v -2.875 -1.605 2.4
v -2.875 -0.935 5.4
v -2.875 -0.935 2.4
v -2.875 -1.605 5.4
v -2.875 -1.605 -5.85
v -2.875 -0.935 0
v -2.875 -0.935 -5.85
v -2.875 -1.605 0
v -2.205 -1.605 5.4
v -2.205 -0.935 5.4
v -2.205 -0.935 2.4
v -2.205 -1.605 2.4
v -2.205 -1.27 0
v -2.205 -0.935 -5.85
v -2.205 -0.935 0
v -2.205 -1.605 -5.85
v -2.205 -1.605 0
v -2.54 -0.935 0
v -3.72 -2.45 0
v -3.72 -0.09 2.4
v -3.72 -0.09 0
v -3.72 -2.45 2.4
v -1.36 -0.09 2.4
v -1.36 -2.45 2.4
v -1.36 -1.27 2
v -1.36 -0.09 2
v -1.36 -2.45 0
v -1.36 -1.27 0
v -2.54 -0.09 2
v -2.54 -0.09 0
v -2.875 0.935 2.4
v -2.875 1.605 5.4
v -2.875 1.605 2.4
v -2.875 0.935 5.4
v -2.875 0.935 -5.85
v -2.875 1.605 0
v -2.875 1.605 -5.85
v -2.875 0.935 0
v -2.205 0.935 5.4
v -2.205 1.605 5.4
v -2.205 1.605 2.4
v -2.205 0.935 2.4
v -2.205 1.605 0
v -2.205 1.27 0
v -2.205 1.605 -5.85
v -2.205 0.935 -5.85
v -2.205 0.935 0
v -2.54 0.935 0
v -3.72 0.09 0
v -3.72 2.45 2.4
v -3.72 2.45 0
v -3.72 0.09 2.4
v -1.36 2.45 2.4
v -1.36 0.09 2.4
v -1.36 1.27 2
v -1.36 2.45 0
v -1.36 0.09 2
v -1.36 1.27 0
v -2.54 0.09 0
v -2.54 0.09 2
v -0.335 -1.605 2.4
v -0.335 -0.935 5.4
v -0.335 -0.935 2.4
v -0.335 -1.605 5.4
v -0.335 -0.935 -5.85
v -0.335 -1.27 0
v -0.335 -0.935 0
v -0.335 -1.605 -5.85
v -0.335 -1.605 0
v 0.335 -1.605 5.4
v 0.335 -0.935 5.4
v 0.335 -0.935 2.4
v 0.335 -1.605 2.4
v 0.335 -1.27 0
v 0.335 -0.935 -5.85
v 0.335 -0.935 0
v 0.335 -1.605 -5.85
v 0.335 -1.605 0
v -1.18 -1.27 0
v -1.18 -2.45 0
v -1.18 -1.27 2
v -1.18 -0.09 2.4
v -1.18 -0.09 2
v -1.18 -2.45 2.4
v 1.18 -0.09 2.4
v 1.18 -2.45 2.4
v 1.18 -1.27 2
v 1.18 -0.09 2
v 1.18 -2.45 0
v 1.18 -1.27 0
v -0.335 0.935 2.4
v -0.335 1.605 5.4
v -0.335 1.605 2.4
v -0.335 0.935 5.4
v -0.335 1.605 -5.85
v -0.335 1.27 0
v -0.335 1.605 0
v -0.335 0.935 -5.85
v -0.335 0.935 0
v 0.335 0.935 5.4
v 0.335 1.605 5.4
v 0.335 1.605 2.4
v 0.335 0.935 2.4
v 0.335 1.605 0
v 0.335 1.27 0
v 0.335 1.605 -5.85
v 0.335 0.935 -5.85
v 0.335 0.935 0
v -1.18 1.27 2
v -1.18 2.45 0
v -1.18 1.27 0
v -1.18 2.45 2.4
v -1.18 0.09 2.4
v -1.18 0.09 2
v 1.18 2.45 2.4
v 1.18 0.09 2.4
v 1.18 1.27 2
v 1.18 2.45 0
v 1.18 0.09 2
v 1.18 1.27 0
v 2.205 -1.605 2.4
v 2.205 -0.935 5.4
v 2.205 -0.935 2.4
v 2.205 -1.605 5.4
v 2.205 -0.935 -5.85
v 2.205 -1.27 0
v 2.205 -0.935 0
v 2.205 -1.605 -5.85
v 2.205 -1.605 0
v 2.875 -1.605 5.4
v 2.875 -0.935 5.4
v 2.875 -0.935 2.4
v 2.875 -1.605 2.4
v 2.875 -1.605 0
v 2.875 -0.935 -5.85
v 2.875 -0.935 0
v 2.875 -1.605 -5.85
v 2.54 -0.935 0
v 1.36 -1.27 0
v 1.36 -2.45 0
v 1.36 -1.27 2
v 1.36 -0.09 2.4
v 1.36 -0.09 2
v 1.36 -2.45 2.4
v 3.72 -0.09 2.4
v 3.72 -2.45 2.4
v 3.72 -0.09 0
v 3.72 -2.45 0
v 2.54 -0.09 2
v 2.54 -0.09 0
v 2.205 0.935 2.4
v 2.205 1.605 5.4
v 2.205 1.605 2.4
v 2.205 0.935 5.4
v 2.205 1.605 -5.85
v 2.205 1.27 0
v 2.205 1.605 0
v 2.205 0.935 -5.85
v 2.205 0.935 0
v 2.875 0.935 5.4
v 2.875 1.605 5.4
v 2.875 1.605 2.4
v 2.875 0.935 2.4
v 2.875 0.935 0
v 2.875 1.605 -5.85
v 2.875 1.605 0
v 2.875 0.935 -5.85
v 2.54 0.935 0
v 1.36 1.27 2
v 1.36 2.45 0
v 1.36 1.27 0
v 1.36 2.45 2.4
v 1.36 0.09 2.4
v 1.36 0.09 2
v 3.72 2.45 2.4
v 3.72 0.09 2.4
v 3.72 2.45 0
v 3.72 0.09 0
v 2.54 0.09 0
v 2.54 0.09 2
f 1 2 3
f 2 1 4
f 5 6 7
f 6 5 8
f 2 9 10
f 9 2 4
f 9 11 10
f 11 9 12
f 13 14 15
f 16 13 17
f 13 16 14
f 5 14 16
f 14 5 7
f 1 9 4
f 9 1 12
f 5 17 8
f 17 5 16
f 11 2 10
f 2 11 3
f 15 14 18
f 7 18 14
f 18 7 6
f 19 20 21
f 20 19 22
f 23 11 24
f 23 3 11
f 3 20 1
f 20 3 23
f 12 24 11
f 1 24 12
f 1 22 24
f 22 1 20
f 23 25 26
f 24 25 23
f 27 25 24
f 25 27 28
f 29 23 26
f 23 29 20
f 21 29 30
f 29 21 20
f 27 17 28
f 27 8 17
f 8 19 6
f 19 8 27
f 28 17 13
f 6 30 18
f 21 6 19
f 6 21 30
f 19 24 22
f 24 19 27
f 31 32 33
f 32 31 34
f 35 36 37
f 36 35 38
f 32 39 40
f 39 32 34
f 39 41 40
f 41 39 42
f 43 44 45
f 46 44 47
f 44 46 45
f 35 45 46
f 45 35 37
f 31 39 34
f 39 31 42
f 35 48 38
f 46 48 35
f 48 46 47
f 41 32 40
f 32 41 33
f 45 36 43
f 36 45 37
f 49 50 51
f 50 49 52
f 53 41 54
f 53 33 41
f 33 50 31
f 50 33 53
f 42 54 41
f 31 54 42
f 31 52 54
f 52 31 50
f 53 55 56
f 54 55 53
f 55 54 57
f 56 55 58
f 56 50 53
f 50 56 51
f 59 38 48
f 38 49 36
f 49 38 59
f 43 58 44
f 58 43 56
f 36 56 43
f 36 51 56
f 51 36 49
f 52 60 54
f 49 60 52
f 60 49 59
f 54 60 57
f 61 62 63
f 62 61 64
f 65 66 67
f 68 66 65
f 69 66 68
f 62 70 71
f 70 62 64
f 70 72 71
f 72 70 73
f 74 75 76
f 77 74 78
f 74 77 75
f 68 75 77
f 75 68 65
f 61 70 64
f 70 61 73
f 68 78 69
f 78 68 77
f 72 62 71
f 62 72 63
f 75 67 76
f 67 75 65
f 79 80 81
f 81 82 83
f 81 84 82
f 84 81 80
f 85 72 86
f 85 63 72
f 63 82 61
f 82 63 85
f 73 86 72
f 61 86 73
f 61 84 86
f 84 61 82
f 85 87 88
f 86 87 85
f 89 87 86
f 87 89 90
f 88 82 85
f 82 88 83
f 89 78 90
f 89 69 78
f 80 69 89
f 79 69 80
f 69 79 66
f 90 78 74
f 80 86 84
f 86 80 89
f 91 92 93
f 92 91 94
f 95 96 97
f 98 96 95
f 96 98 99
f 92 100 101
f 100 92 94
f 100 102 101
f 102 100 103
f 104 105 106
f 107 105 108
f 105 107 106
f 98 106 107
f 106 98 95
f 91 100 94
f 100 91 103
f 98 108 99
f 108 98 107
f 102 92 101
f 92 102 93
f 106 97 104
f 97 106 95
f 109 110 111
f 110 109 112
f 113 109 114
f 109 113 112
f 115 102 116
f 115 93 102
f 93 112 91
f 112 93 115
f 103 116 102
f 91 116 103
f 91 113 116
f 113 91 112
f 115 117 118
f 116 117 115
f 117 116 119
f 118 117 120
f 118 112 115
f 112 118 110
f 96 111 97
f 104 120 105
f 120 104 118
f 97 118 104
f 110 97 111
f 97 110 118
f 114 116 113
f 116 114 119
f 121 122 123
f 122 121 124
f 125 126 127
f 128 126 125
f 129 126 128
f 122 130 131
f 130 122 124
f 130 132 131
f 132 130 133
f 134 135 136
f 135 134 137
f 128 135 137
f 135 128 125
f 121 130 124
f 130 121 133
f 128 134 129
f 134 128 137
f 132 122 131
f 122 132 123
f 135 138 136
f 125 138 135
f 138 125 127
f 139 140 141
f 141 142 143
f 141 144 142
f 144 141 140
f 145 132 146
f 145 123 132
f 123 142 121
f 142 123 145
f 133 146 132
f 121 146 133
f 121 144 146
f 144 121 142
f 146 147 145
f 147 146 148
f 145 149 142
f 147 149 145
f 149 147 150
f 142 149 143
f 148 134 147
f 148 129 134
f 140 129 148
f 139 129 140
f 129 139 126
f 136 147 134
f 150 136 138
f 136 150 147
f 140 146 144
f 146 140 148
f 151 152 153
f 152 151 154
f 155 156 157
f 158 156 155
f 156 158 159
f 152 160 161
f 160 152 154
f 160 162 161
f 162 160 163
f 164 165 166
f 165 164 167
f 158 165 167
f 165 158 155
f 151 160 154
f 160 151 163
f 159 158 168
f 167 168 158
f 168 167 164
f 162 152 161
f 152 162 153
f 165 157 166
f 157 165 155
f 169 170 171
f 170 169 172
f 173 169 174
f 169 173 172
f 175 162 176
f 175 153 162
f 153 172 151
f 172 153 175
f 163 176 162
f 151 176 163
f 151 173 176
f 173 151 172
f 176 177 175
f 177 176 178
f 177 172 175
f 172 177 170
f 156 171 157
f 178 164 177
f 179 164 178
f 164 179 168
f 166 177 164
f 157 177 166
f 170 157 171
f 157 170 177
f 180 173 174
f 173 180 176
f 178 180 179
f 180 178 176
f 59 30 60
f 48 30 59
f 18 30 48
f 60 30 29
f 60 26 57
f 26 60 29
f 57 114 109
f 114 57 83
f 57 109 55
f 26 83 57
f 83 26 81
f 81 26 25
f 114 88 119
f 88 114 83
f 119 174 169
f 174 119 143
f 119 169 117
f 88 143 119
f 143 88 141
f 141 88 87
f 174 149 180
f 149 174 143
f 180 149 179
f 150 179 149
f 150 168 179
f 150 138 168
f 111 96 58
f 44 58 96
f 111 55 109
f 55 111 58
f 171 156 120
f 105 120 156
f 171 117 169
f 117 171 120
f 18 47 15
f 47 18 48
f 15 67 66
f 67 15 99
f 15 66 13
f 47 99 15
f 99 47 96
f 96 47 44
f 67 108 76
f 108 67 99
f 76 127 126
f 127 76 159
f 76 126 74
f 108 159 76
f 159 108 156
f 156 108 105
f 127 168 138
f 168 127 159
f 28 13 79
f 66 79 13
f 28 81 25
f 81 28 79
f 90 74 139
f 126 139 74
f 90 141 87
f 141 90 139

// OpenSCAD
/*
  Breakaway Header Pins: pitch 2.54, adjustable
  Aaron Ciuffo
  December 23 2015
  GPL V3

  derived from Molex KK 100 break-away header:
  http://www.molex.com/pdm_docs/sd/022032041_sd.pdf

  Usage (default values shown): 
  ```
  use </path/to/libraries/header_pins.scad>
  //full
  headerPins(columns = 3, rows = 2, centerV = false, center = true, pitch = 2.52);
  //simple
  headerPins(3, 2);
  ```
  columns = integer number of columns (X axis)
  rows = integer number of rows (Y axis)
  centerV = vertically center around base - fale places bottom at origin
  center = center the array at the origin
  pitch = distance between center of each pin

  Note: 
  * the breakaway connector is a bit of a fudge and does not appear at the same
    Z height for centered/versus non centered; this should be largely irrelevant 

  updates can be found at GitHub:
  https://github.com/txoof/OpenSCAD_electronics

*/

/*[Dimensions]*/
//Columns
columns = 3; //[1:30]
//Rows
rows = 2; //[1:5]
//Pitch
pitch = 2.54; //[1.25, 1.27, 2, 2.54, 3.5, 3.96]

pinHeight=11.25;

pinAboveNylon=3;

module singlePin(center = false, locate = false, v = false, pinHeight=14.22, pinAboveNylon = 7.49) {
  pinDimensions = [.67, .67, pinHeight];
  nylonDimensions = [2.36, 2.36, 2.4];

  trans = center == false ? [0, 0, nylonDimensions[2]/2] : [0, 0, 0];

  translate(trans)
  union() {
    translate([0, 0, (-pinDimensions[2]/2+nylonDimensions[2]/2)+pinAboveNylon])
      color("gold")
      cube(pinDimensions, center = true);    
    color("darkgray")
      cube(nylonDimensions, center =true);
    if (locate) {
      color("red")
        cylinder(r = 0.1, h = pinDimensions[2]*5, center = true);
    }
  }

  if (v) {
    echo("single pin dimension:", pinDimensions);
    echo("pin above nylon:", pinAboveNylon);
  }

}

module headerPins(columns = 3, rows = 2, centerV = false, center = true, 
                  pitch = 2.54, locate = false, v = false, pinHeight=14.22, pinAboveNylon=7.49) {
  transV = centerV == false ? pitch/2 : 0; // vertical center

  trans = center == false ? [0, 0, 0] : [-(columns-1)*pitch/2, -(rows-1)*pitch/2, 0];
  if (v) {
    echo("header pin array");
    echo("usage: columns, rows, centerV, center, pitch, locate, v(erbose)");
  }

  translate(trans) 
  union() {
    for (i = [0:columns-1]) {
      for (j = [0:rows-1]) {
        translate([pitch*i, pitch*j, 0])
          singlePin(locate = locate, v = v, pinHeight=pinHeight, pinAboveNylon=pinAboveNylon);
      }
    }
    translate([0, 0, -pitch/2+transV])
      color("black")
      cube([pitch*(columns-1), pitch*(rows-1), 2]);
  }
}

//singlePin();
headerPins(columns = columns , rows = rows, pitch = pitch, pinHeight = pinHeight, pinAboveNylon=pinAboveNylon);
